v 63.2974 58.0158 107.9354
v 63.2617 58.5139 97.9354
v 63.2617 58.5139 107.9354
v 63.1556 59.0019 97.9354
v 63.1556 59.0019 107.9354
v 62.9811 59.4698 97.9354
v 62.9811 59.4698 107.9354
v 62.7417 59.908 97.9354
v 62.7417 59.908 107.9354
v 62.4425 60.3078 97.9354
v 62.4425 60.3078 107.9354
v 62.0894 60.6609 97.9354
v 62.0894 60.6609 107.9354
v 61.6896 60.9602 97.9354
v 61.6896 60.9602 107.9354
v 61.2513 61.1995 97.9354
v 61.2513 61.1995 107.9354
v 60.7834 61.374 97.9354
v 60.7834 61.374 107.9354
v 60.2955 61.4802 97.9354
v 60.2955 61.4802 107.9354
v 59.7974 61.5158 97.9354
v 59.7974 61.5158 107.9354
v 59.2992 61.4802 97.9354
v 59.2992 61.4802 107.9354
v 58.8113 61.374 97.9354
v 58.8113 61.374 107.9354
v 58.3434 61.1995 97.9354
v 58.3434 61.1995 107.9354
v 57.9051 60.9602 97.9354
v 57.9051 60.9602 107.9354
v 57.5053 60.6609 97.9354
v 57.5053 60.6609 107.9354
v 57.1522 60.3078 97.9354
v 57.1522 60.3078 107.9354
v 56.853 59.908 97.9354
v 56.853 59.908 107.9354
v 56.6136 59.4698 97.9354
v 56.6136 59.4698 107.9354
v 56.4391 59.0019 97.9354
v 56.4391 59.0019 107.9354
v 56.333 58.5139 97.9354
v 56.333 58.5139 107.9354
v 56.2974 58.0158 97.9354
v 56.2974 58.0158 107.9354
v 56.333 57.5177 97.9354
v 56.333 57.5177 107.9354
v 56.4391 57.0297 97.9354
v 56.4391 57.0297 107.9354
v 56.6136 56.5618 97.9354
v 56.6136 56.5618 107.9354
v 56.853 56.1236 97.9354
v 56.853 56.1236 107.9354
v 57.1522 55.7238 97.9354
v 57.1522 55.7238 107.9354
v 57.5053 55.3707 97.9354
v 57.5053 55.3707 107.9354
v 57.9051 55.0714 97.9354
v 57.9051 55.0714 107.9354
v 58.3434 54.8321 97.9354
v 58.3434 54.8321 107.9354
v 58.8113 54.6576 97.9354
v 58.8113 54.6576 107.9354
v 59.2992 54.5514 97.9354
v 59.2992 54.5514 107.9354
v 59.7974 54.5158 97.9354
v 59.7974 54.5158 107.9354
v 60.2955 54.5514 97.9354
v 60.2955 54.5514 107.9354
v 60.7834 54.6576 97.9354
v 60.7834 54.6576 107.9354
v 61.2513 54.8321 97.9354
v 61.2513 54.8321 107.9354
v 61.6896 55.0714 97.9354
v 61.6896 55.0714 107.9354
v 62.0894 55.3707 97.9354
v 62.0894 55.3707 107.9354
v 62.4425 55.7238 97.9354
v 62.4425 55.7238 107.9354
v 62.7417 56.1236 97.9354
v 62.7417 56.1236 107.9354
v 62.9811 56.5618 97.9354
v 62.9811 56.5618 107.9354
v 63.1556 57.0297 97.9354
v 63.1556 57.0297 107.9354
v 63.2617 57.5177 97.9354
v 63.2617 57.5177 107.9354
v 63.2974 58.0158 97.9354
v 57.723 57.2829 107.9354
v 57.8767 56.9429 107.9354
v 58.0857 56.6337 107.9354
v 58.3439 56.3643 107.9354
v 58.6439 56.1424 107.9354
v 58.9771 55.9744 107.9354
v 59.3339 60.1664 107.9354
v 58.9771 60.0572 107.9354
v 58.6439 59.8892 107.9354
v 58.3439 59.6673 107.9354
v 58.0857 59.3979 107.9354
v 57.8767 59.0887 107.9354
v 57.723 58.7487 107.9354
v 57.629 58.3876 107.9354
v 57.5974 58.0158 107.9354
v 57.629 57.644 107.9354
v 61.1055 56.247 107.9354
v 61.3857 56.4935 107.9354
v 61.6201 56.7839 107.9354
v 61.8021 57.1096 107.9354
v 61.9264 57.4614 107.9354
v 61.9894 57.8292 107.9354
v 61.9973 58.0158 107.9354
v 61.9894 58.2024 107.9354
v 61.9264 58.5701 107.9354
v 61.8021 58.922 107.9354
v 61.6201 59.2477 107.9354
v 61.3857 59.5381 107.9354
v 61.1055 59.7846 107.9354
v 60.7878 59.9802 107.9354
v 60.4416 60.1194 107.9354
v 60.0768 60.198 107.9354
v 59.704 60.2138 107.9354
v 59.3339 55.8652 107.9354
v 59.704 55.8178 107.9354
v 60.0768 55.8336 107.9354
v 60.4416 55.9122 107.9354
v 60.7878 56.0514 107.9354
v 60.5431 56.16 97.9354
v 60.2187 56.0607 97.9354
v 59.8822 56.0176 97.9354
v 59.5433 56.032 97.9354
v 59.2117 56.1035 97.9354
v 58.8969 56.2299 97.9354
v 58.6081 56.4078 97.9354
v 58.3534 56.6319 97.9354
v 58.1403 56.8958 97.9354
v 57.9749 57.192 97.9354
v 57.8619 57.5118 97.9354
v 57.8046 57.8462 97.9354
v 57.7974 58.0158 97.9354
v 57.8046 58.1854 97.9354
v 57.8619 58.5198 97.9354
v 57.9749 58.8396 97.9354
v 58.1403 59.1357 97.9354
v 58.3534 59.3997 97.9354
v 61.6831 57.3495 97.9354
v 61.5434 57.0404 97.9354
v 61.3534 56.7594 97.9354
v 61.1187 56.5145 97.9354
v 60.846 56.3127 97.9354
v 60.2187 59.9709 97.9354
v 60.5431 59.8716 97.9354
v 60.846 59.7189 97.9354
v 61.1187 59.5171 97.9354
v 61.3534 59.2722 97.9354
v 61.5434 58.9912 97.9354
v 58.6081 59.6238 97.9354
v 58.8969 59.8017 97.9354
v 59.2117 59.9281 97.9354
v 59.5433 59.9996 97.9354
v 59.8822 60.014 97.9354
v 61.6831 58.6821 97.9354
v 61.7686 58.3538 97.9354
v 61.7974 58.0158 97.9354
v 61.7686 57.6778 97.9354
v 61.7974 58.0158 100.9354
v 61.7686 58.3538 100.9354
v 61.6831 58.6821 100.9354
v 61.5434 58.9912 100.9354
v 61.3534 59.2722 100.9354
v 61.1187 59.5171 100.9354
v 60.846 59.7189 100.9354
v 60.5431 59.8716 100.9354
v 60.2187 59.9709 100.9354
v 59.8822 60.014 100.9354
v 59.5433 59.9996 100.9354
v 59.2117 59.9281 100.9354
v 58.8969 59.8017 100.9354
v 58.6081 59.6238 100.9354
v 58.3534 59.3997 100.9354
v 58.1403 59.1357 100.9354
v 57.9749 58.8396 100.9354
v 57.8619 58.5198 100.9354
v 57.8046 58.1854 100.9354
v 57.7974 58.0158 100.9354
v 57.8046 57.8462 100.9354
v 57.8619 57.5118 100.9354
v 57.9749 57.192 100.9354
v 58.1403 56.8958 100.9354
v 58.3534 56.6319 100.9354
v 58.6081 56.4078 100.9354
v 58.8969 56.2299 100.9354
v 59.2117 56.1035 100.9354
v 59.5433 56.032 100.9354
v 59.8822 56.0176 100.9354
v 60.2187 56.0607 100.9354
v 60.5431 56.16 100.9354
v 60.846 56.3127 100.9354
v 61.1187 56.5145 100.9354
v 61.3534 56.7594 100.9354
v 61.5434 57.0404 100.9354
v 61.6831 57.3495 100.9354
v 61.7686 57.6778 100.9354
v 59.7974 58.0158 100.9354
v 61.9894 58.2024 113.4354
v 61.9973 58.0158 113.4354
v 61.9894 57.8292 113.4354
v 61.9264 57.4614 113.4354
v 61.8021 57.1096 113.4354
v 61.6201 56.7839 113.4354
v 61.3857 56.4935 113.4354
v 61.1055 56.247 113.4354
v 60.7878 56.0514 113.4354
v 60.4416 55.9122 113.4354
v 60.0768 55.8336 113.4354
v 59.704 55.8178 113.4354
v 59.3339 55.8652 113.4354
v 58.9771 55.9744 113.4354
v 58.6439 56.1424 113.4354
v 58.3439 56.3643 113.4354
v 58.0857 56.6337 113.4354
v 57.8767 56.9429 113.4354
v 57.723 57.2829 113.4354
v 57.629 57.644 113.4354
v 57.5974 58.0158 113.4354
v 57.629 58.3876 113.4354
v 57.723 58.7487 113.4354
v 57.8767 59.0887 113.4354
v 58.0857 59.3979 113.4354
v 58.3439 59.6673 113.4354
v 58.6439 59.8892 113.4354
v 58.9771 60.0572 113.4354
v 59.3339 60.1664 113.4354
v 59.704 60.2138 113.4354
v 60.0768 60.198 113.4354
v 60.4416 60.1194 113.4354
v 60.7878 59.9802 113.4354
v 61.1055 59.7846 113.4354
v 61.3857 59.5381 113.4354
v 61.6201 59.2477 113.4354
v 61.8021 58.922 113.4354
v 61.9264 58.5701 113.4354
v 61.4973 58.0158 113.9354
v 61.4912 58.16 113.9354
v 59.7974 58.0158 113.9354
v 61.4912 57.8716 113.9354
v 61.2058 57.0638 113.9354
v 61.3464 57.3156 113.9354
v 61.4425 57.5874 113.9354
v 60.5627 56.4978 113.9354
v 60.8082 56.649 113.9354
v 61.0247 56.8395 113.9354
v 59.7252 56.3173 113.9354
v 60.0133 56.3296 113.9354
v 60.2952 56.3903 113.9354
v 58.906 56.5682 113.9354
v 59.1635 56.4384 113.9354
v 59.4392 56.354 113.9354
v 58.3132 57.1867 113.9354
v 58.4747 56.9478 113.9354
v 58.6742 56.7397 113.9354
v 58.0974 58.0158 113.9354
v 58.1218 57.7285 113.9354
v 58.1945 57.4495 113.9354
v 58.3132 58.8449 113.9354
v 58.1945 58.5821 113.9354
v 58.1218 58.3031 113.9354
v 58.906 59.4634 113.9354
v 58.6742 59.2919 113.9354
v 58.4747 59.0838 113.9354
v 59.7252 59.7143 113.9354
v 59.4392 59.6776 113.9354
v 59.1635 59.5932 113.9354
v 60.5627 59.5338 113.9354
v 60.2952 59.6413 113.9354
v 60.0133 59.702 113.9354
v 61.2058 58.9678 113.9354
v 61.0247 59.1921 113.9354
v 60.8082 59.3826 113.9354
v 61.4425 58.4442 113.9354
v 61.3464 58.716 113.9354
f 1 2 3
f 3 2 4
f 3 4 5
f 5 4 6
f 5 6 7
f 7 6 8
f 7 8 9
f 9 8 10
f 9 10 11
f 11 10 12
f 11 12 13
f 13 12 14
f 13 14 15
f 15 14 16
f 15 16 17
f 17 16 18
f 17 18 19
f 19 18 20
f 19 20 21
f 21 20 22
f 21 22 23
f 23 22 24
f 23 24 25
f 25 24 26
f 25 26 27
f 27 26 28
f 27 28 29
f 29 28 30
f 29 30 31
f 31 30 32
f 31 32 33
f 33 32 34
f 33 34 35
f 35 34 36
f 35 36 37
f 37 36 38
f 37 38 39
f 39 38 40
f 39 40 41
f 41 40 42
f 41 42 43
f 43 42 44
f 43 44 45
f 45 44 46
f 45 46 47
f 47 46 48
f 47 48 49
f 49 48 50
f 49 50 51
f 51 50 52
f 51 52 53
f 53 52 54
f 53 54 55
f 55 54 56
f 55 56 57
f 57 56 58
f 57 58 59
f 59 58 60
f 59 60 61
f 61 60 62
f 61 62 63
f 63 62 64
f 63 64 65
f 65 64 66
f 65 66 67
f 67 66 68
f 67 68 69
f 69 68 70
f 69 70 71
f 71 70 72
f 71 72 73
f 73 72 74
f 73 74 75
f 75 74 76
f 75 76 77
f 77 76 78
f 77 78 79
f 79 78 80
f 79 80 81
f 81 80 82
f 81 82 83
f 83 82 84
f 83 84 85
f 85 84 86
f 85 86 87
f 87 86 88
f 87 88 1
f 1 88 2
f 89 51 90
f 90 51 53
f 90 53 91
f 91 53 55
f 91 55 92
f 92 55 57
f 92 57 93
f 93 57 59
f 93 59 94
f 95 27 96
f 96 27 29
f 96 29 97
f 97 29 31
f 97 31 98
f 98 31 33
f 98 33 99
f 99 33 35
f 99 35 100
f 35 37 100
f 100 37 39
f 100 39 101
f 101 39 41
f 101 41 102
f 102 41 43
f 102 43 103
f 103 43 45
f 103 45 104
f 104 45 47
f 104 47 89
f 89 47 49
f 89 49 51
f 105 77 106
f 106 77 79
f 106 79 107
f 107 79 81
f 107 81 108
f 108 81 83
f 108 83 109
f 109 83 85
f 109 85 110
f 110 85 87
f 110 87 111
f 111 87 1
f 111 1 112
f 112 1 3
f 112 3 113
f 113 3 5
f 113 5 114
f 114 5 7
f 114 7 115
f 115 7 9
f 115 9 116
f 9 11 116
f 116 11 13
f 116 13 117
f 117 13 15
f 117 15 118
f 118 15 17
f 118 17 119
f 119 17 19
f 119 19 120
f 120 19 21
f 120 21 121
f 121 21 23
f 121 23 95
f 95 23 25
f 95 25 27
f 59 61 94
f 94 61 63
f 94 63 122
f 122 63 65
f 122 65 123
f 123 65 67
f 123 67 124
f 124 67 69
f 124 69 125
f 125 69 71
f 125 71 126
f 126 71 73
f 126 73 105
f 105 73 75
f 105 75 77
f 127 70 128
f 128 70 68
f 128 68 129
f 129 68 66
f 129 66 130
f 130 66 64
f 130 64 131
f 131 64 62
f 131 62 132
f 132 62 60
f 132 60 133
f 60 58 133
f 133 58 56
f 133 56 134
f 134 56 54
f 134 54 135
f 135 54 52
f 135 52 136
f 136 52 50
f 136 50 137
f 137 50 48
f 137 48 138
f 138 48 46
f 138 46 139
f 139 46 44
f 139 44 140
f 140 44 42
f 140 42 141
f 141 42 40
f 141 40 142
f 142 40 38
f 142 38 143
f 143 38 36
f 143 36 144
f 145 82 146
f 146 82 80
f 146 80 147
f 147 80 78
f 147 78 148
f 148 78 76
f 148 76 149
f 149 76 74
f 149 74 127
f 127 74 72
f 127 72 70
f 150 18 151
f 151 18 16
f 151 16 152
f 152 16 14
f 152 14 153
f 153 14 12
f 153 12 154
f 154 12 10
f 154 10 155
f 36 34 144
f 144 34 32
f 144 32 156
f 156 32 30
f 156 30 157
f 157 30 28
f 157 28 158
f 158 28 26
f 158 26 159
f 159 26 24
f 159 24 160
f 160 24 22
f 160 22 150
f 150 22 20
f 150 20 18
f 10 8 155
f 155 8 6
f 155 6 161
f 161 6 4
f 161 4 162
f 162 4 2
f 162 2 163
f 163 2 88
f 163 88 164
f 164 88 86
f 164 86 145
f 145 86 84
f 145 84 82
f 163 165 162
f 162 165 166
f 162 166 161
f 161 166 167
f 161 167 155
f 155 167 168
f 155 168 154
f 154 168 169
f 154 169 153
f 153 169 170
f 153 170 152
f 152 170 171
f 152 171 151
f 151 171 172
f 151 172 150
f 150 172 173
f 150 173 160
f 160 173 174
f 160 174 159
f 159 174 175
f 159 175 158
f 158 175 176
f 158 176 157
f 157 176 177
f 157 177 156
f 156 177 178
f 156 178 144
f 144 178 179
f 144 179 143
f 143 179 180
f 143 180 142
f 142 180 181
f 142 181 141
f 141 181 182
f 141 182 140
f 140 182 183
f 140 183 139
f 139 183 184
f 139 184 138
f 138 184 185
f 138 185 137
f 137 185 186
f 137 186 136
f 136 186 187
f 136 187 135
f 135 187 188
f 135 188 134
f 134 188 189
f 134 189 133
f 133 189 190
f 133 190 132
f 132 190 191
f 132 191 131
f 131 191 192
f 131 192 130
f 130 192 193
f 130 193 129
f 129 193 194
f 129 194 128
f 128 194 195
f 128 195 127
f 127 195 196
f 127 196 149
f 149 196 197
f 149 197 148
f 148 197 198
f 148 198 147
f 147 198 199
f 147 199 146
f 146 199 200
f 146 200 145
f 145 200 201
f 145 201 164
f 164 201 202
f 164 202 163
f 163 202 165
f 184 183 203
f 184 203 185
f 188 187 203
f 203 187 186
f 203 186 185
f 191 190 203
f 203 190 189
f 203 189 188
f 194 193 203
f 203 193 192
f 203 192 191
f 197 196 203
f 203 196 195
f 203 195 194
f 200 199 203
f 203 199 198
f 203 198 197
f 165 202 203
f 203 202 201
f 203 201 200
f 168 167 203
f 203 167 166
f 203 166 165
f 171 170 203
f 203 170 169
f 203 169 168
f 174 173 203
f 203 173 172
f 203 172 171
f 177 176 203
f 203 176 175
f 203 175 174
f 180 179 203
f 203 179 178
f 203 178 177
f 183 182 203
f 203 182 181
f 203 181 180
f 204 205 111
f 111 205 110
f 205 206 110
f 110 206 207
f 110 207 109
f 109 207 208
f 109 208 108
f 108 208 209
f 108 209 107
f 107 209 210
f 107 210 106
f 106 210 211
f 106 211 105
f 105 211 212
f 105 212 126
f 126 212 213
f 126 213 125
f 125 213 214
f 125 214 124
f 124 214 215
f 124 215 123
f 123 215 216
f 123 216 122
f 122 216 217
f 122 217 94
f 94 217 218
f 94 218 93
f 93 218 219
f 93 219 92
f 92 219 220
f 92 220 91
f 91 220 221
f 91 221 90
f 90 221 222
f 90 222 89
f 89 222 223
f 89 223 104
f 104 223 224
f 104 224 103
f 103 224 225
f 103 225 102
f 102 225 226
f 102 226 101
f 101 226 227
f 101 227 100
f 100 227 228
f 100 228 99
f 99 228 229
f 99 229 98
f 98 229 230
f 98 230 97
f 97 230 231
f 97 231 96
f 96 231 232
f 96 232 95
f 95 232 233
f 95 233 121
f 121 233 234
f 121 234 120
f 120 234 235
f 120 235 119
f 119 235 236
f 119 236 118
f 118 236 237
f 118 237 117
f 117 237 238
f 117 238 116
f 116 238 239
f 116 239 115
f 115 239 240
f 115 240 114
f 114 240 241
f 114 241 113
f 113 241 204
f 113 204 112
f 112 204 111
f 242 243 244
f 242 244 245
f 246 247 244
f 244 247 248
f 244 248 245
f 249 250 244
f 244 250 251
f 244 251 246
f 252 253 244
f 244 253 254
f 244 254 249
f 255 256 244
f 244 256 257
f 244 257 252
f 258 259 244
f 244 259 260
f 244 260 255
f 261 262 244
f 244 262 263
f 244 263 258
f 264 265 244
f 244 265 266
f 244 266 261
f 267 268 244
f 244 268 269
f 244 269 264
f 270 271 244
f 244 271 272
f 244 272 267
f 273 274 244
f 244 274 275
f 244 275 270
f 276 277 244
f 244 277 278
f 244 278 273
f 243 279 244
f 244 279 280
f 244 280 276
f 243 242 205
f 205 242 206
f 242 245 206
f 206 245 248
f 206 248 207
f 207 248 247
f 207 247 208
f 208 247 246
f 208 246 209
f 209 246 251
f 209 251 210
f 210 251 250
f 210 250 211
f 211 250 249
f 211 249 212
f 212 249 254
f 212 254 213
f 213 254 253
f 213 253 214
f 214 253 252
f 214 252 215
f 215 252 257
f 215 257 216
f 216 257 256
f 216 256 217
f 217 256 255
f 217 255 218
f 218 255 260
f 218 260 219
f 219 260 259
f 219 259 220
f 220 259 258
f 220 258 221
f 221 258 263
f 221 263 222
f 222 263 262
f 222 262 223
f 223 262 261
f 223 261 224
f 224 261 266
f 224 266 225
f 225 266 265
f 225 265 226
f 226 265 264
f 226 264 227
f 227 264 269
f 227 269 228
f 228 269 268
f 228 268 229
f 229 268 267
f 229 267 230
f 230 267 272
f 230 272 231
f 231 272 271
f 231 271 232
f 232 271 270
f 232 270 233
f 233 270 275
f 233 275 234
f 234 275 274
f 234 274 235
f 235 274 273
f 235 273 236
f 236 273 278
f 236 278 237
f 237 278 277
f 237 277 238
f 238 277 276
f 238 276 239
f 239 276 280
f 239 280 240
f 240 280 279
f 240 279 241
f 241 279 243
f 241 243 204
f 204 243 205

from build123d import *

# Parameters (mm, degrees)
SKETCH1_R           = 3.5
BOSS_EXTRUDE1_DEPTH = 7
SKETCH2_R           = 3.5
SKETCH2_R_2         = 2
BOSS_EXTRUDE2_DEPTH = 3
SKETCH3_R           = 2.2
BOSS_EXTRUDE3_DEPTH = 6
CHAMFER1_SIZE       = 0.5


with BuildPart() as part:
    # Sketch1 → Boss-Extrude1 (new body)
    with BuildSketch(Plane(origin=(0, 0, 107.93542322), x_dir=(-1, 0, 0), z_dir=(0, 0, -1))):
        with Locations((-59.79735108, 58.015798494)):
            Circle(SKETCH1_R)
    extrude(amount=BOSS_EXTRUDE1_DEPTH)

    # Sketch2 → Boss-Extrude2 (add)
    with BuildSketch(Plane(origin=(0, 0, 100.93542322), x_dir=(-1, 0, 0), z_dir=(0, 0, -1))):
        with Locations((-59.79735108, 58.015798494)):
            Circle(SKETCH2_R)
        with Locations((-59.79735108, 58.015798494)):
            Circle(SKETCH2_R_2, mode=Mode.SUBTRACT)
    extrude(amount=BOSS_EXTRUDE2_DEPTH)

    # Sketch3 → Boss-Extrude3 (add)
    with BuildSketch(Plane.XY.offset(107.93542322)):
        with Locations((59.79735108, 58.015798494)):
            Circle(SKETCH3_R)
    extrude(amount=BOSS_EXTRUDE3_DEPTH)

    # Chamfer1
    chamfer1_edges = [part.edges().sort_by_distance(p)[0] for p in [
        (57.59735108, 58.015798494, 113.93542322),
    ]]
    chamfer(chamfer1_edges, length=CHAMFER1_SIZE)


solid = part.part
